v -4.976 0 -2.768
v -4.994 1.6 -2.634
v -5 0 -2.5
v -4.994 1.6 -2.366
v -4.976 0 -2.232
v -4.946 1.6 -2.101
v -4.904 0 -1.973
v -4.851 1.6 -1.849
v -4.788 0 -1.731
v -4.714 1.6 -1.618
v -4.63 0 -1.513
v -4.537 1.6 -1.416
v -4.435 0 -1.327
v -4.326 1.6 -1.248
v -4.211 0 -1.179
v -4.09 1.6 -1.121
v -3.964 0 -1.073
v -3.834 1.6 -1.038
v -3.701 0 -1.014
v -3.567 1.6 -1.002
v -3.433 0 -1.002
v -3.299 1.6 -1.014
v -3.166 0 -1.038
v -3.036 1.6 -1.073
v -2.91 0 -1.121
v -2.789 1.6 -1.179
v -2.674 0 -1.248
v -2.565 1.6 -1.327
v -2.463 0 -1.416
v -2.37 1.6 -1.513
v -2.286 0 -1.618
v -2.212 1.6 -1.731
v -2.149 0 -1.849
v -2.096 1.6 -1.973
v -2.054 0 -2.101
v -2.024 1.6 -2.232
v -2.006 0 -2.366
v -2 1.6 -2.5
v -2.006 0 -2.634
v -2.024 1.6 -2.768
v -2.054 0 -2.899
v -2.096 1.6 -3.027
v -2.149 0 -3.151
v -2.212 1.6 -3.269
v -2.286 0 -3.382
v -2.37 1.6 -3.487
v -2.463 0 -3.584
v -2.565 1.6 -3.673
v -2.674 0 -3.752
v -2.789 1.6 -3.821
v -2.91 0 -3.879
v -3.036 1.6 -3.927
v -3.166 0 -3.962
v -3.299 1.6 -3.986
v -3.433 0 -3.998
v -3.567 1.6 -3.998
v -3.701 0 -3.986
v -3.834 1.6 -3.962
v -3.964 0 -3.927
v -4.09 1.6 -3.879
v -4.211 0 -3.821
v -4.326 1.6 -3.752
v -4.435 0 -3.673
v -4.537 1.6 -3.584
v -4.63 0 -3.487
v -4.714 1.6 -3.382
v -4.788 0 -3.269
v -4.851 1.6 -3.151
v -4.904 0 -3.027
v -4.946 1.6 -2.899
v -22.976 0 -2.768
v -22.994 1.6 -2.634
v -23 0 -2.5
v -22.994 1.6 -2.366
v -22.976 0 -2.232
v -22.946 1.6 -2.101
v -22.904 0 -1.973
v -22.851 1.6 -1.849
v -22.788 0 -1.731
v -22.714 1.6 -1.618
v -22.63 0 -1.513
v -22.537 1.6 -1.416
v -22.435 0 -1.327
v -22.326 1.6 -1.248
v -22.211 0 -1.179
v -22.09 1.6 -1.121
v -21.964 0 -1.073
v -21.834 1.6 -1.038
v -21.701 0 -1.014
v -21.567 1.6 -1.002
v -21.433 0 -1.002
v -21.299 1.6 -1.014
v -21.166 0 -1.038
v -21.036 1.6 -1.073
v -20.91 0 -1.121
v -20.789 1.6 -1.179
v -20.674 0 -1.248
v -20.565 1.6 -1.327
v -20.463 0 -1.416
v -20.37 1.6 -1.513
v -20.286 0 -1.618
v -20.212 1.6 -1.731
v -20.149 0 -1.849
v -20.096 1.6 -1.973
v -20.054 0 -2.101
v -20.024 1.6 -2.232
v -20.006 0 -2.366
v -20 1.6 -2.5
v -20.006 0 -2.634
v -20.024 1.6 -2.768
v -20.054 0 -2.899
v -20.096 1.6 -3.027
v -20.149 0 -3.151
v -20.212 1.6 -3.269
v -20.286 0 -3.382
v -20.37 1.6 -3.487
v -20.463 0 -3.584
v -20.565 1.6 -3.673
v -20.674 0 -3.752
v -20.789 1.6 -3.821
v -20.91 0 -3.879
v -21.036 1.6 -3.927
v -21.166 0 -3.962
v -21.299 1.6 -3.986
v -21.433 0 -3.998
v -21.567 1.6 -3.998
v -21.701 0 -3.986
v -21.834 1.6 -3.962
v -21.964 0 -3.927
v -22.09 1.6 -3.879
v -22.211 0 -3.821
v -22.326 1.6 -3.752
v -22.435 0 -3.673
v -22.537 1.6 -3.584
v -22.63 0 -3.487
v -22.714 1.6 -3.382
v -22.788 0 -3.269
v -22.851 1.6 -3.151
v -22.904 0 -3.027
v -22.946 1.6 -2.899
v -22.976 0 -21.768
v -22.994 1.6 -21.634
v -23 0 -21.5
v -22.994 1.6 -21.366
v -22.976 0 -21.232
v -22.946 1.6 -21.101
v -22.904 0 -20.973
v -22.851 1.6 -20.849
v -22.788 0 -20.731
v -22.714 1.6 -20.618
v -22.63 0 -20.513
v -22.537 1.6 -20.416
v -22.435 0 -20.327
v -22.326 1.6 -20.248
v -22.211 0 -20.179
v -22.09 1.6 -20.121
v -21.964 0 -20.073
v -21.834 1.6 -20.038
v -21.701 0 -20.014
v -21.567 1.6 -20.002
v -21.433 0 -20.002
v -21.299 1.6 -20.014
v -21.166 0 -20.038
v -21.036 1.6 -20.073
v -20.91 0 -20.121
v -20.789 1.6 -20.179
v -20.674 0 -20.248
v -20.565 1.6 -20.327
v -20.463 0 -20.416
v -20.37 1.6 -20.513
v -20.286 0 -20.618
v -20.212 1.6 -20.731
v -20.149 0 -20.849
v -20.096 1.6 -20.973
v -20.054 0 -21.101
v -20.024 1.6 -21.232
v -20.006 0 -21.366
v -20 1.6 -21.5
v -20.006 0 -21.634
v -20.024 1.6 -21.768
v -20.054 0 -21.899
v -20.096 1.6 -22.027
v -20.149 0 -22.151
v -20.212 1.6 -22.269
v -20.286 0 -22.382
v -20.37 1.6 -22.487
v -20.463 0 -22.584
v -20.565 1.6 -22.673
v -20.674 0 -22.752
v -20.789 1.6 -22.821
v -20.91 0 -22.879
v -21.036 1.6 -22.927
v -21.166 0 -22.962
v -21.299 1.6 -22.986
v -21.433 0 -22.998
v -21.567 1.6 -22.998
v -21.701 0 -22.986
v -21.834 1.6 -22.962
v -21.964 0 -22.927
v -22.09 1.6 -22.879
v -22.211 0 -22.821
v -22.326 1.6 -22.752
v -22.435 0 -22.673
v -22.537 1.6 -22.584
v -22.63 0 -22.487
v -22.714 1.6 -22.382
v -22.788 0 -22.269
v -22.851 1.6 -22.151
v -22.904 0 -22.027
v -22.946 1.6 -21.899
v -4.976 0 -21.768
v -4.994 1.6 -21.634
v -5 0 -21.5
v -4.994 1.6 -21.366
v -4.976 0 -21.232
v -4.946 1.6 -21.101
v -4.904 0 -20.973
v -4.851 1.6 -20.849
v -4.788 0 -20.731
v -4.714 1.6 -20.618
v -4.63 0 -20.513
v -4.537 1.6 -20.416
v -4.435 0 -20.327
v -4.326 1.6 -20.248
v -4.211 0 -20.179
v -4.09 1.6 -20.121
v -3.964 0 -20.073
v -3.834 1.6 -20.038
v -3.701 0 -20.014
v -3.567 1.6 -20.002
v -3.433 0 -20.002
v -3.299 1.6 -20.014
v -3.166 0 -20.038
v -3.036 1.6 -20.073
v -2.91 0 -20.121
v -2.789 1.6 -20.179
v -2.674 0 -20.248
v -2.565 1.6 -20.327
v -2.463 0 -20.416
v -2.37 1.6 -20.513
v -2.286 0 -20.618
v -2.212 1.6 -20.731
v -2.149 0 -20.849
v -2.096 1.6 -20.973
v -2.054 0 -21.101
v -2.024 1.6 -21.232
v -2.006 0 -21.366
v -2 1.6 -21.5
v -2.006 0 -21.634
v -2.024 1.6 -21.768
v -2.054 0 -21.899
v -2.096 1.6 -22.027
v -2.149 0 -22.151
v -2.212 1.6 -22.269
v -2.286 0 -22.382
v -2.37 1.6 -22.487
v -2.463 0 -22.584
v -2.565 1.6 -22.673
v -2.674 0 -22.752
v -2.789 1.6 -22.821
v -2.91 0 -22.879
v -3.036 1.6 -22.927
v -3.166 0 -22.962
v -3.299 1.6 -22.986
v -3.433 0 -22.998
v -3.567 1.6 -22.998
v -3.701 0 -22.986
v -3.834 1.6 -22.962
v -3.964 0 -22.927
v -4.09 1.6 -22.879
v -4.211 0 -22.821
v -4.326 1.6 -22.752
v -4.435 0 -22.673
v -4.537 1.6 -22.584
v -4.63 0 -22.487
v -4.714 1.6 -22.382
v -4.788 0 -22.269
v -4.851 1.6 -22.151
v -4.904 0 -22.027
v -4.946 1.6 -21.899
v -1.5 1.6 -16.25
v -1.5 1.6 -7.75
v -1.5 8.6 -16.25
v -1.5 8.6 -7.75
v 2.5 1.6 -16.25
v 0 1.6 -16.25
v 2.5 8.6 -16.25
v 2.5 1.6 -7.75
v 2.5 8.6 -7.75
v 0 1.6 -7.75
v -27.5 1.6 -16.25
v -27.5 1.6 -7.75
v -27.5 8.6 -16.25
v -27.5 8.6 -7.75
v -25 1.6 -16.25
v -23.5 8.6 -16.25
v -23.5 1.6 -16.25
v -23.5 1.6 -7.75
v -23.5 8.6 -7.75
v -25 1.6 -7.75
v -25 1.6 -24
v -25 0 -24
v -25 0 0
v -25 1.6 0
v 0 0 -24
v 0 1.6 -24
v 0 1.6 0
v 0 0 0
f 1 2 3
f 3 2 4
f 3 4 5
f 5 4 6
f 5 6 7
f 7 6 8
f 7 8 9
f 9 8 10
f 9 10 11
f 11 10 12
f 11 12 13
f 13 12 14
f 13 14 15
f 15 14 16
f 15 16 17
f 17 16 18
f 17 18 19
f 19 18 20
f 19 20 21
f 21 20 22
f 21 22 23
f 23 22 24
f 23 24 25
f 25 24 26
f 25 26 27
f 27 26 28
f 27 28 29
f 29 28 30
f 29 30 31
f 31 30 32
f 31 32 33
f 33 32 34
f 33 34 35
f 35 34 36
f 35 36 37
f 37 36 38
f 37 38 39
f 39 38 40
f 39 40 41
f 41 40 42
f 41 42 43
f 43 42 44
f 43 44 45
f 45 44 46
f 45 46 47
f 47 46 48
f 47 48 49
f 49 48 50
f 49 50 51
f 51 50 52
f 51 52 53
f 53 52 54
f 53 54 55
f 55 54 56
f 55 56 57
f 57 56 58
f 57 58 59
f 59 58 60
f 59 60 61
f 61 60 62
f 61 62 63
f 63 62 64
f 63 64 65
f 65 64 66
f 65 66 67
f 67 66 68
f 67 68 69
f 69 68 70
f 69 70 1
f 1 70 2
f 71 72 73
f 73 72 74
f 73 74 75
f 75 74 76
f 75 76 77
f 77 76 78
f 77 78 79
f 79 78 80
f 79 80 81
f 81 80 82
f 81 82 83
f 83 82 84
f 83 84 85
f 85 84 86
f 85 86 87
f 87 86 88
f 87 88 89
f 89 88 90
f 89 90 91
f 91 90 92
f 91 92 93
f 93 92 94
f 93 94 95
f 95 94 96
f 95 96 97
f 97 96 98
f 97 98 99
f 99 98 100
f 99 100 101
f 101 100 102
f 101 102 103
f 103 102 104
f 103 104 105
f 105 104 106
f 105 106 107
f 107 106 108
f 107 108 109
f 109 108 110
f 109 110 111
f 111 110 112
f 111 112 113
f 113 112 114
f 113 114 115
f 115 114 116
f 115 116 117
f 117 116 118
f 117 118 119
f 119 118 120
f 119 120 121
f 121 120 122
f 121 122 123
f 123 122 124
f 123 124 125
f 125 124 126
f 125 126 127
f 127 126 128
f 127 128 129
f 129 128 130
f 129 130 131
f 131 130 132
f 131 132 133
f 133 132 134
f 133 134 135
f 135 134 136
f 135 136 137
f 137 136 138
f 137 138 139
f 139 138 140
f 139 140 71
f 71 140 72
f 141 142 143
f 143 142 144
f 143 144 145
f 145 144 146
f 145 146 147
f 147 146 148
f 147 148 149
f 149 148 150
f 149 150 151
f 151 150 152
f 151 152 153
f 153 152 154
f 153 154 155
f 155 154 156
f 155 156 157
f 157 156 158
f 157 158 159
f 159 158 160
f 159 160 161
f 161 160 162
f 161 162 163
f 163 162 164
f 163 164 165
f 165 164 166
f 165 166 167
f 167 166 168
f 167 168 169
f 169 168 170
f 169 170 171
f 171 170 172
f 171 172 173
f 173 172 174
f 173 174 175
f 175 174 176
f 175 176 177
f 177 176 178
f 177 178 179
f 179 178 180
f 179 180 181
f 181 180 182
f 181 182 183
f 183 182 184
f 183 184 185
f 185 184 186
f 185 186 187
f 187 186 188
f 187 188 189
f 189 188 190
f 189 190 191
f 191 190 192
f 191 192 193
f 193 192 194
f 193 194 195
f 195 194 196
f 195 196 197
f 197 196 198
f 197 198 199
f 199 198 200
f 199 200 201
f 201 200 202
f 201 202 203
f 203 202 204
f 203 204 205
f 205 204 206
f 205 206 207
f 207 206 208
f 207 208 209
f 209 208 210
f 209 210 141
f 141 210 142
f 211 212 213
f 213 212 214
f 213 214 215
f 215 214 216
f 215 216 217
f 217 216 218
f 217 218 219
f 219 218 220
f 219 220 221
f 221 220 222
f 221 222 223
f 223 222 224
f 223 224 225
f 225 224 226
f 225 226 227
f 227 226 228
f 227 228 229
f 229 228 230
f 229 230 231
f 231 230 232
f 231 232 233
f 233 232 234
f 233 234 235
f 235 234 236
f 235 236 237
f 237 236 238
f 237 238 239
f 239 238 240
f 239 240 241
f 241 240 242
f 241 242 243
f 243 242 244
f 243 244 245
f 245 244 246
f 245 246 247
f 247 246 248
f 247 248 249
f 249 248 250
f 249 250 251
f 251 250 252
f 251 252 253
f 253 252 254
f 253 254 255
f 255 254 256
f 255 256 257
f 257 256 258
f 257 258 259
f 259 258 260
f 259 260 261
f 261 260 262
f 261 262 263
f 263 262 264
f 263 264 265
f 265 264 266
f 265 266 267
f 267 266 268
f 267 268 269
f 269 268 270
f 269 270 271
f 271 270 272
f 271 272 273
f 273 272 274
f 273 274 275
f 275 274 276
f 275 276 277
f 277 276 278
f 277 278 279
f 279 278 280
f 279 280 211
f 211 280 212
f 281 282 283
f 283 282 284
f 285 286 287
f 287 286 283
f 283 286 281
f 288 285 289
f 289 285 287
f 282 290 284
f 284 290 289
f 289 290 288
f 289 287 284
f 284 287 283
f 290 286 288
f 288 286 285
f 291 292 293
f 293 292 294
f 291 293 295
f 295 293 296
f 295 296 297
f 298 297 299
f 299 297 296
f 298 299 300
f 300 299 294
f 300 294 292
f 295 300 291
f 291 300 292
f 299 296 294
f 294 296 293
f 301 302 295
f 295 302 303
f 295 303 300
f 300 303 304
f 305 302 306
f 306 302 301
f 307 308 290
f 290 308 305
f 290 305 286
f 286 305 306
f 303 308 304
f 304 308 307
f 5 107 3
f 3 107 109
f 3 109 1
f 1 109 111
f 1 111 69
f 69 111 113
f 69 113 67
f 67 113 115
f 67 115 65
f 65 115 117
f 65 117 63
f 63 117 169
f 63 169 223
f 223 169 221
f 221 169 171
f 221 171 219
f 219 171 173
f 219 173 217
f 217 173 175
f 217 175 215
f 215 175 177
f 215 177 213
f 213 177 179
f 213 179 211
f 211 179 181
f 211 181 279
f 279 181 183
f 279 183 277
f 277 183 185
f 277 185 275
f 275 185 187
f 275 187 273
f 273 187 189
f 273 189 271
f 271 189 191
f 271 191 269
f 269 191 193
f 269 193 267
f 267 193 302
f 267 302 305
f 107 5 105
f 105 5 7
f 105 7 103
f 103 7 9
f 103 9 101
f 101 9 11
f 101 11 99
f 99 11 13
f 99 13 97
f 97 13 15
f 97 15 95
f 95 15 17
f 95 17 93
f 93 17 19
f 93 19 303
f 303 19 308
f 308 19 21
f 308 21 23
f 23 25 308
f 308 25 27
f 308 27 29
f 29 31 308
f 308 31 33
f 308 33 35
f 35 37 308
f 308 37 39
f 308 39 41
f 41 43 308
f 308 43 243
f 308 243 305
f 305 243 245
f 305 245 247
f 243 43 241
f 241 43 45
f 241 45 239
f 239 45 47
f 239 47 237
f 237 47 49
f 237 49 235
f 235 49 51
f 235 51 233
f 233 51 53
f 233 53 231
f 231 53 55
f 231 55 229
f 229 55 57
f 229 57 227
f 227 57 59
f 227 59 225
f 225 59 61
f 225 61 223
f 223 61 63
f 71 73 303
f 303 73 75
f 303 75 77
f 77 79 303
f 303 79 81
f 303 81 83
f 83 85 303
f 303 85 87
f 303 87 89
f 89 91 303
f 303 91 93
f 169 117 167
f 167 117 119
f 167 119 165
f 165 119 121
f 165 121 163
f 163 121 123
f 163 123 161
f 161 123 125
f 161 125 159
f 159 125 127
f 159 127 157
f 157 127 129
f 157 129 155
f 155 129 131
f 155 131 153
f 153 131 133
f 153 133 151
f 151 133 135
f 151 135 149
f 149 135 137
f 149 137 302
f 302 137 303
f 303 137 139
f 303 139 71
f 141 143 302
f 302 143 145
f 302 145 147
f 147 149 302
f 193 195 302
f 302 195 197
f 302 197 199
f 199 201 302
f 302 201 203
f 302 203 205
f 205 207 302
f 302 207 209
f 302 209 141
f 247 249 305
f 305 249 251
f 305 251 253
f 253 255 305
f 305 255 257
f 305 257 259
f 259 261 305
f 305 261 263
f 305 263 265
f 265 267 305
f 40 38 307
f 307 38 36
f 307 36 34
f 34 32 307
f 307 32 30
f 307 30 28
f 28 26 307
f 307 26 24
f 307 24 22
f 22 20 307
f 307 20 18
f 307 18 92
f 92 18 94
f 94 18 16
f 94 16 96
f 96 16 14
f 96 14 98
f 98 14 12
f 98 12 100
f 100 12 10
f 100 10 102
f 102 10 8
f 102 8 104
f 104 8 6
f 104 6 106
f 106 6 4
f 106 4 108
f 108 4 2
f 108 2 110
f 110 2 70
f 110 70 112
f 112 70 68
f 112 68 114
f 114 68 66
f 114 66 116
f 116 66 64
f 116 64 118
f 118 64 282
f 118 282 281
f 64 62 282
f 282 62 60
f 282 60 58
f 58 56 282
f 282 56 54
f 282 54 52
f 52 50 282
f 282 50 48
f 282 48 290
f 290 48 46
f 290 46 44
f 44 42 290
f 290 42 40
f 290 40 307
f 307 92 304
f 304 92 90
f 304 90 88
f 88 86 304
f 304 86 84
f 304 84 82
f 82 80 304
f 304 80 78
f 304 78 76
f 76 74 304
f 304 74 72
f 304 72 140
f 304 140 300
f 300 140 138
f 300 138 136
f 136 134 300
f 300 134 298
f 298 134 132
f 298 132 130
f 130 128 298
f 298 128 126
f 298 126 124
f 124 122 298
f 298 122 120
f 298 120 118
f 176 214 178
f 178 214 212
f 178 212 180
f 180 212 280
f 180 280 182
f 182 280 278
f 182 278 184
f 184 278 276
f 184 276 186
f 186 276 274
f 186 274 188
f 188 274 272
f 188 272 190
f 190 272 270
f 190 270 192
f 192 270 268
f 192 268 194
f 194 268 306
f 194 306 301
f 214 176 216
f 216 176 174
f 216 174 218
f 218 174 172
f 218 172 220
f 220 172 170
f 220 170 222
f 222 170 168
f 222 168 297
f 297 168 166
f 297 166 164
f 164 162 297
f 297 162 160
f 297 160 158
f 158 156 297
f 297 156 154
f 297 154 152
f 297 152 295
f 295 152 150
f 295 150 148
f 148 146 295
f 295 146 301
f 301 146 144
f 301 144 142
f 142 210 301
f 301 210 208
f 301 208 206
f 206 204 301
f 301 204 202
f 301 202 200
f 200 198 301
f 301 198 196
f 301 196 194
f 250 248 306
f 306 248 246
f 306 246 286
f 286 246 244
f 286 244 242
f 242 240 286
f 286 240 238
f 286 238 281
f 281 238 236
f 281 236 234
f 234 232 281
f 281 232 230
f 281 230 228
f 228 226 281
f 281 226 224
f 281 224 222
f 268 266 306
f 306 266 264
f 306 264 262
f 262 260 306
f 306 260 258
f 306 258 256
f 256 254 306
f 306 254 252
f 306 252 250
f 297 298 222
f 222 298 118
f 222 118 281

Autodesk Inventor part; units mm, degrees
ref_plane "YZ Plane" through (0, 0, 0) normal (1, 0, 0) x (0, 1, 0)
ref_plane "XZ Plane" through (0, 0, 0) normal (0, 1, 0) x (-1, 0, 0)
ref_plane "XY Plane" through (0, 0, 0) normal (0, 0, 1) x (1, 0, 0)
sketch "Sketch1" plane through (0, 0, 0) normal (0, 1, 0) x (-1, 0, 0)
  line L0 (0, 0) -> (25, 0)
  line L1 (25, 0) -> (25, -24)
  line L2 (25, -24) -> (0, -24)
  line L3 (0, -24) -> (0, 0)
  dimension "d0" = 24
  dimension "d1" = 25
extrude "Extrusion1" add sketch "Sketch1" along normal blind 1.6
sketch "Sketch2" plane through (0, 1.6, 0) normal (0, 1, 0) x (1, 0, 0)
  line L0 (-23.5, 7.75) -> (-27.5, 7.75)
  line L1 (-27.5, 7.75) -> (-27.5, 16.25)
  line L2 (-27.5, 16.25) -> (-23.5, 16.25)
  line L3 (-23.5, 16.25) -> (-23.5, 7.75)
  line L4 (-1.5, 7.75) -> (2.5, 7.75)
  line L5 (2.5, 7.75) -> (2.5, 16.25)
  line L6 (2.5, 16.25) -> (-1.5, 16.25)
  line L7 (-1.5, 16.25) -> (-1.5, 7.75)
  line L8 (-25, 0) -> (0, 0) projected
  line L9 (0, 24) -> (-25, 24) projected
  line L10 (0, 0) -> (0, 24) projected
  line L11 (-25, 24) -> (-25, 0) projected
  dimension "d4" = 8.5
  dimension "d5" = 7.75
  dimension "d6" = 7.75
  dimension "d8" = 4
  dimension "d9" = 8.5
  dimension "d10" = 7.75
  dimension "d11" = 2.5
  dimension "d13" = 4
  dimension "d14" = 2.5
extrude "Extrusion2" add sketch "Sketch2" along normal blind 7 contours L0 L11 L2 L3 | L0 L1 L2 L11 | L10 L6 L5 L4 | L4 L7 L6 L10
sketch "Sketch3" plane through (0, 1.6, 0) normal (0, 1, 0) x (1, 0, 0)
  line L0 (-25, 7.75) -> (-25, 0) projected
  line L1 (-25, 0) -> (0, 0) projected
  point P0 (-21.5, 2.5)
  point P1 (-21.5, 21.5)
  point P2 (-3.5, 2.5)
  point P3 (-3.5, 21.5)
  dimension "d17" = 3.5
  dimension "d18" = 2.5
  dimension "d21" = 19
  dimension "d24" = 18
hole "Hole1" at (-21.5, 1.6, -2.5) at (-21.5, 1.6, -21.5) at (-3.5, 1.6, -2.5) at (-3.5, 1.6, -21.5) direction (0, -1, 0) diameter 3 end through all
properties part number "Mock Board"
